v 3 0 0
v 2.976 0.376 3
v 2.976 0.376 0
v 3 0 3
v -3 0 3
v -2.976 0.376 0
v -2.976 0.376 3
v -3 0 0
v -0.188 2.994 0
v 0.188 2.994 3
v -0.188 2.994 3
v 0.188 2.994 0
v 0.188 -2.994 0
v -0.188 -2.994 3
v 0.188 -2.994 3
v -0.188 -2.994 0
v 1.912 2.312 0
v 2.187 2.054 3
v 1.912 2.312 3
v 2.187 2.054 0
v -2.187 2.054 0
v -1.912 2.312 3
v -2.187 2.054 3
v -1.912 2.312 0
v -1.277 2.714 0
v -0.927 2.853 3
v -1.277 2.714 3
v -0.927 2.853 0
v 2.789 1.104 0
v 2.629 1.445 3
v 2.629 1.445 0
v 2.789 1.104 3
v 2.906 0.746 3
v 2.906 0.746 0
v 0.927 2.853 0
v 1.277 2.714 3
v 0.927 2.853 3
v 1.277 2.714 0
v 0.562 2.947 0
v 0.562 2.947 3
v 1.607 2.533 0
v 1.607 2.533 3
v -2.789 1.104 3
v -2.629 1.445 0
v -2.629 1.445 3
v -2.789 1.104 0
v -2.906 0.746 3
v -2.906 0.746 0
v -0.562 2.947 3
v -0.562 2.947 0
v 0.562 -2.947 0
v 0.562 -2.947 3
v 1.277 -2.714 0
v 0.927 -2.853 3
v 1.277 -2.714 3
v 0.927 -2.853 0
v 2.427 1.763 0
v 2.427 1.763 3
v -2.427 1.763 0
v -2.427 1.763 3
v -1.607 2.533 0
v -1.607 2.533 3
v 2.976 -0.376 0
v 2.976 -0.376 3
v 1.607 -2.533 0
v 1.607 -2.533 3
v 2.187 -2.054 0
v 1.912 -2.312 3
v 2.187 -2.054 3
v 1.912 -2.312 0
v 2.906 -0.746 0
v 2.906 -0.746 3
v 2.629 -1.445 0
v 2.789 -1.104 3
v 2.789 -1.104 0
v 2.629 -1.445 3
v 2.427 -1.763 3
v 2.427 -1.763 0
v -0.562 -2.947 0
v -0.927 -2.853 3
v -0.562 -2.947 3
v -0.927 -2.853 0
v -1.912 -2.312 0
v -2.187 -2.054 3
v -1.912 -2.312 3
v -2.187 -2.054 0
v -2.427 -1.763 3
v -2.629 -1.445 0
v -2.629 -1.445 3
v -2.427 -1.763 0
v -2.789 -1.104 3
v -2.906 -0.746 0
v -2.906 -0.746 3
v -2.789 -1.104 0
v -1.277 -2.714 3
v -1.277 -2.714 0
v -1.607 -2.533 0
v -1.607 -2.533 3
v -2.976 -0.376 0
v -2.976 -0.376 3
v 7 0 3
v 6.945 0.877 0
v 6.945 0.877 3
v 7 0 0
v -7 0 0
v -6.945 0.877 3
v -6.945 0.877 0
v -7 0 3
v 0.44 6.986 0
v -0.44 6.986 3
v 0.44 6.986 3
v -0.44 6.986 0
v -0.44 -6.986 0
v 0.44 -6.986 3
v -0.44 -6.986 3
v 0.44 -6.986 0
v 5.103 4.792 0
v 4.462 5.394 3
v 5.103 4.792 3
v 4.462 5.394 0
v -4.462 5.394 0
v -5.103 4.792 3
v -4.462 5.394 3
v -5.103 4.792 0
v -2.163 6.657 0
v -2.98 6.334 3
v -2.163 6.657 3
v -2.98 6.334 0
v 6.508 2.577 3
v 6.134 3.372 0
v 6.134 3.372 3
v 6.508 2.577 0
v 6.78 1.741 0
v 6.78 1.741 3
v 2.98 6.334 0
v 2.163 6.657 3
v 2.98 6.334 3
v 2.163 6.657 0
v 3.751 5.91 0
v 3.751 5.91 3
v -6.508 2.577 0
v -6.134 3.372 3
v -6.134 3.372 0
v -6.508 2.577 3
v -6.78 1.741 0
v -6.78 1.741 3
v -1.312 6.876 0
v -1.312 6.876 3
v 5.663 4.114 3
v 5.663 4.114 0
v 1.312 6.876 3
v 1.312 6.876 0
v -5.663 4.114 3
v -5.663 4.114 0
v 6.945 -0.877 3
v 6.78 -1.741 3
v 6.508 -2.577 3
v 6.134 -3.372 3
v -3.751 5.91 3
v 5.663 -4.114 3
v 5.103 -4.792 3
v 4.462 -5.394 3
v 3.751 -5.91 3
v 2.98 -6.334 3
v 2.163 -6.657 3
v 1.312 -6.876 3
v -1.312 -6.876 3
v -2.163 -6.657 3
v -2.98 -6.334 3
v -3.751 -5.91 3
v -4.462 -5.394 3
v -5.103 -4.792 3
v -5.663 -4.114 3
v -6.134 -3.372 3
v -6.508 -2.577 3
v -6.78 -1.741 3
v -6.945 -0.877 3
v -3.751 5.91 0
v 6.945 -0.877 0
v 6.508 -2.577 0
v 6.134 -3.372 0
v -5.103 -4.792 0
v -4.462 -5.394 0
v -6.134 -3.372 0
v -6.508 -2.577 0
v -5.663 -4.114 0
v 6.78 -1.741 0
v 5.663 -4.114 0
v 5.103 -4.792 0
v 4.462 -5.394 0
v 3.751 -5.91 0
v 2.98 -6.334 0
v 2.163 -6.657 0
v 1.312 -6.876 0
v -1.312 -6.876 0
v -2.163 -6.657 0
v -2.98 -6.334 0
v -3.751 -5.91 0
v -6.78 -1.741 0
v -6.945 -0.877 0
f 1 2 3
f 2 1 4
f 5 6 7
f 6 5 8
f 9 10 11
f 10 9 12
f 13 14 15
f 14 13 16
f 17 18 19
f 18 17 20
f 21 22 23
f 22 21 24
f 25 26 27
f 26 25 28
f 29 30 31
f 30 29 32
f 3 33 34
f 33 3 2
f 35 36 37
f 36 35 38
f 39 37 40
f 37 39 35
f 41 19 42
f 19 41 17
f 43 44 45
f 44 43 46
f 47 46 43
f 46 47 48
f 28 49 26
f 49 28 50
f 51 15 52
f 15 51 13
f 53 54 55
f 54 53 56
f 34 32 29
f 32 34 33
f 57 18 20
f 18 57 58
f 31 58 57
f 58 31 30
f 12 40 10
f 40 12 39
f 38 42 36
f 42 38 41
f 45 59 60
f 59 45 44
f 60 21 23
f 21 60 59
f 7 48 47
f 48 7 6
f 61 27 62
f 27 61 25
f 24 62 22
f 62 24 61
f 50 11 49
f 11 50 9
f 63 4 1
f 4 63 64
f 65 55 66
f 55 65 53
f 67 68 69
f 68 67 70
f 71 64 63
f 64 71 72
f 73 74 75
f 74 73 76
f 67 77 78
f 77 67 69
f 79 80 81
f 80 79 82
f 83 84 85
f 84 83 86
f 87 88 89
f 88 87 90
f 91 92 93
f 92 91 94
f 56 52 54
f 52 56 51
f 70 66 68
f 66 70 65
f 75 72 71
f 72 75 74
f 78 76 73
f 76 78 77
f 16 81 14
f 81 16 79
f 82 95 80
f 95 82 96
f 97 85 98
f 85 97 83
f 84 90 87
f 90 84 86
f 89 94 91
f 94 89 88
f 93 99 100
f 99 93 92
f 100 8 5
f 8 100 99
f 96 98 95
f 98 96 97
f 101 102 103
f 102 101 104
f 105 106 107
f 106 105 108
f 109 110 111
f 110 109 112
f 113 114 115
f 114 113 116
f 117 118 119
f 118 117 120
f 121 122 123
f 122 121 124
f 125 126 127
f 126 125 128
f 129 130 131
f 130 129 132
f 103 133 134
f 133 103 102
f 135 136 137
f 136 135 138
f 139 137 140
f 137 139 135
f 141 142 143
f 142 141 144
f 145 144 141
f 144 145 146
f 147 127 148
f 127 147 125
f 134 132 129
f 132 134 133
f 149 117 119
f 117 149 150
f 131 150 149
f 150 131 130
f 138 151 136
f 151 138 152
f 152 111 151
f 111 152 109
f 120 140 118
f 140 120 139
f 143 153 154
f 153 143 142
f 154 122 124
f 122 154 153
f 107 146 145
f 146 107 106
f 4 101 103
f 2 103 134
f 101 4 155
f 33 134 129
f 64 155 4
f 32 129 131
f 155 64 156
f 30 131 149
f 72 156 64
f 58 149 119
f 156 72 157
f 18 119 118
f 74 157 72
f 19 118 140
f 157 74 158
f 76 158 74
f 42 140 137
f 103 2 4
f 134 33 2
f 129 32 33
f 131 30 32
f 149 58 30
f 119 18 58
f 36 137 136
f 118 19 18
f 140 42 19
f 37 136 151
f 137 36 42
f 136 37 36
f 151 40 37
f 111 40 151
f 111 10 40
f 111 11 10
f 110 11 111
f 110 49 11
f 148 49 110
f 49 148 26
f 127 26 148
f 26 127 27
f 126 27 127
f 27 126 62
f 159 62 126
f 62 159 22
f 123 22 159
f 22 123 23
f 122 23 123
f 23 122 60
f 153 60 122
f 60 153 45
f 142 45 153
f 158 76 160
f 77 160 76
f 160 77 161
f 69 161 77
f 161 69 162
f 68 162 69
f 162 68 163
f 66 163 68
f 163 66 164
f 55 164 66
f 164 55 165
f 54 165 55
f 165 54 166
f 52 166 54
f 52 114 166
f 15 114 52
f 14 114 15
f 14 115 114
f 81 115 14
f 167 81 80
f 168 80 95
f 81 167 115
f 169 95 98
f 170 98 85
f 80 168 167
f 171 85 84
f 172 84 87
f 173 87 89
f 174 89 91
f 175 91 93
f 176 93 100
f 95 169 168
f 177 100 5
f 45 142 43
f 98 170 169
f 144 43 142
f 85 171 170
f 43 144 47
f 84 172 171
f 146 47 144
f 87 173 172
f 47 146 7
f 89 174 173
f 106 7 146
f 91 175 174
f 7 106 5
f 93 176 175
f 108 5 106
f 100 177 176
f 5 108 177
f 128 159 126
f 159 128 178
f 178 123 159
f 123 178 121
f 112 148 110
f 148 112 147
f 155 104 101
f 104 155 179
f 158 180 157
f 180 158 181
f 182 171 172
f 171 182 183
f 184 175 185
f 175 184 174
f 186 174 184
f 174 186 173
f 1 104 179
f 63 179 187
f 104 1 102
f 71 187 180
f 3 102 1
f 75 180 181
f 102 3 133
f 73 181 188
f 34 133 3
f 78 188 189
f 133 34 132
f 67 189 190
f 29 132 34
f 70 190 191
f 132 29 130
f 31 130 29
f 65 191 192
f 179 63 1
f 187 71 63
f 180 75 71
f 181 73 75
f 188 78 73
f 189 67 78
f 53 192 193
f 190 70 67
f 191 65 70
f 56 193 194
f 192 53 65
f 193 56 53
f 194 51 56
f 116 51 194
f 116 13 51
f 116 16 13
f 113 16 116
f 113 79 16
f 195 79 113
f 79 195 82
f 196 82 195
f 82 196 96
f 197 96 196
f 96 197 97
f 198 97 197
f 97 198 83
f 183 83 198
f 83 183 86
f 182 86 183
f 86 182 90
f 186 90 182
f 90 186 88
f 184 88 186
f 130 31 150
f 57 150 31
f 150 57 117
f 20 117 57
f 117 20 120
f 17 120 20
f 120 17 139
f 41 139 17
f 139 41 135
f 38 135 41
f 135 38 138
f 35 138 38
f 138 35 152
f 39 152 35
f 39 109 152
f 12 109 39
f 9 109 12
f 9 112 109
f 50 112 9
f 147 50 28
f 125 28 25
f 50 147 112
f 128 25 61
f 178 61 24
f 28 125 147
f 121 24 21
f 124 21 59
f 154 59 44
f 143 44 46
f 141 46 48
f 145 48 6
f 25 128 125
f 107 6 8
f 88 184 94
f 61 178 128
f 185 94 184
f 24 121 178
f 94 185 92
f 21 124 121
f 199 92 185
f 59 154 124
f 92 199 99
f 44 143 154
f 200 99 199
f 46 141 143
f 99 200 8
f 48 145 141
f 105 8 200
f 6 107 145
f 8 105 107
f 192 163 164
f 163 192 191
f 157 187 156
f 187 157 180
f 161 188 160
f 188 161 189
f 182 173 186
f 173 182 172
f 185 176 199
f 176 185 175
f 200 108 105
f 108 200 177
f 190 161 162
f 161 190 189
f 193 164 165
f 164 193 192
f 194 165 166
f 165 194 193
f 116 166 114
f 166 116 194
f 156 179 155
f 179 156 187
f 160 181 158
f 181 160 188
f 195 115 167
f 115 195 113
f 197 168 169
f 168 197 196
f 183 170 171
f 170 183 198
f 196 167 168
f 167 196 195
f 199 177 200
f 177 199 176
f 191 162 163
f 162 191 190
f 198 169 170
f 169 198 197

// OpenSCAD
$fn = 50;


difference() {
	union() {
		cylinder(h = 3, r = 7.0000000000);
	}
	union() {
		#translate(v = [0.0000000000, 0.0000000000, -100.0000000000]) {
			cylinder(h = 200, r = 3.0000000000);
		}
		#translate(v = [0.0000000000, 0.0000000000, -100.0000000000]) {
			cylinder(h = 200, r = 3.0000000000);
		}
		#translate(v = [0.0000000000, 0.0000000000, -100.0000000000]) {
			cylinder(h = 200, r = 3.0000000000);
		}
		#translate(v = [0.0000000000, 0.0000000000, -100.0000000000]) {
			cylinder(h = 200, r = 3.0000000000);
		}
		#cylinder(h = 3, r = 2.5000000000);
	}
}
